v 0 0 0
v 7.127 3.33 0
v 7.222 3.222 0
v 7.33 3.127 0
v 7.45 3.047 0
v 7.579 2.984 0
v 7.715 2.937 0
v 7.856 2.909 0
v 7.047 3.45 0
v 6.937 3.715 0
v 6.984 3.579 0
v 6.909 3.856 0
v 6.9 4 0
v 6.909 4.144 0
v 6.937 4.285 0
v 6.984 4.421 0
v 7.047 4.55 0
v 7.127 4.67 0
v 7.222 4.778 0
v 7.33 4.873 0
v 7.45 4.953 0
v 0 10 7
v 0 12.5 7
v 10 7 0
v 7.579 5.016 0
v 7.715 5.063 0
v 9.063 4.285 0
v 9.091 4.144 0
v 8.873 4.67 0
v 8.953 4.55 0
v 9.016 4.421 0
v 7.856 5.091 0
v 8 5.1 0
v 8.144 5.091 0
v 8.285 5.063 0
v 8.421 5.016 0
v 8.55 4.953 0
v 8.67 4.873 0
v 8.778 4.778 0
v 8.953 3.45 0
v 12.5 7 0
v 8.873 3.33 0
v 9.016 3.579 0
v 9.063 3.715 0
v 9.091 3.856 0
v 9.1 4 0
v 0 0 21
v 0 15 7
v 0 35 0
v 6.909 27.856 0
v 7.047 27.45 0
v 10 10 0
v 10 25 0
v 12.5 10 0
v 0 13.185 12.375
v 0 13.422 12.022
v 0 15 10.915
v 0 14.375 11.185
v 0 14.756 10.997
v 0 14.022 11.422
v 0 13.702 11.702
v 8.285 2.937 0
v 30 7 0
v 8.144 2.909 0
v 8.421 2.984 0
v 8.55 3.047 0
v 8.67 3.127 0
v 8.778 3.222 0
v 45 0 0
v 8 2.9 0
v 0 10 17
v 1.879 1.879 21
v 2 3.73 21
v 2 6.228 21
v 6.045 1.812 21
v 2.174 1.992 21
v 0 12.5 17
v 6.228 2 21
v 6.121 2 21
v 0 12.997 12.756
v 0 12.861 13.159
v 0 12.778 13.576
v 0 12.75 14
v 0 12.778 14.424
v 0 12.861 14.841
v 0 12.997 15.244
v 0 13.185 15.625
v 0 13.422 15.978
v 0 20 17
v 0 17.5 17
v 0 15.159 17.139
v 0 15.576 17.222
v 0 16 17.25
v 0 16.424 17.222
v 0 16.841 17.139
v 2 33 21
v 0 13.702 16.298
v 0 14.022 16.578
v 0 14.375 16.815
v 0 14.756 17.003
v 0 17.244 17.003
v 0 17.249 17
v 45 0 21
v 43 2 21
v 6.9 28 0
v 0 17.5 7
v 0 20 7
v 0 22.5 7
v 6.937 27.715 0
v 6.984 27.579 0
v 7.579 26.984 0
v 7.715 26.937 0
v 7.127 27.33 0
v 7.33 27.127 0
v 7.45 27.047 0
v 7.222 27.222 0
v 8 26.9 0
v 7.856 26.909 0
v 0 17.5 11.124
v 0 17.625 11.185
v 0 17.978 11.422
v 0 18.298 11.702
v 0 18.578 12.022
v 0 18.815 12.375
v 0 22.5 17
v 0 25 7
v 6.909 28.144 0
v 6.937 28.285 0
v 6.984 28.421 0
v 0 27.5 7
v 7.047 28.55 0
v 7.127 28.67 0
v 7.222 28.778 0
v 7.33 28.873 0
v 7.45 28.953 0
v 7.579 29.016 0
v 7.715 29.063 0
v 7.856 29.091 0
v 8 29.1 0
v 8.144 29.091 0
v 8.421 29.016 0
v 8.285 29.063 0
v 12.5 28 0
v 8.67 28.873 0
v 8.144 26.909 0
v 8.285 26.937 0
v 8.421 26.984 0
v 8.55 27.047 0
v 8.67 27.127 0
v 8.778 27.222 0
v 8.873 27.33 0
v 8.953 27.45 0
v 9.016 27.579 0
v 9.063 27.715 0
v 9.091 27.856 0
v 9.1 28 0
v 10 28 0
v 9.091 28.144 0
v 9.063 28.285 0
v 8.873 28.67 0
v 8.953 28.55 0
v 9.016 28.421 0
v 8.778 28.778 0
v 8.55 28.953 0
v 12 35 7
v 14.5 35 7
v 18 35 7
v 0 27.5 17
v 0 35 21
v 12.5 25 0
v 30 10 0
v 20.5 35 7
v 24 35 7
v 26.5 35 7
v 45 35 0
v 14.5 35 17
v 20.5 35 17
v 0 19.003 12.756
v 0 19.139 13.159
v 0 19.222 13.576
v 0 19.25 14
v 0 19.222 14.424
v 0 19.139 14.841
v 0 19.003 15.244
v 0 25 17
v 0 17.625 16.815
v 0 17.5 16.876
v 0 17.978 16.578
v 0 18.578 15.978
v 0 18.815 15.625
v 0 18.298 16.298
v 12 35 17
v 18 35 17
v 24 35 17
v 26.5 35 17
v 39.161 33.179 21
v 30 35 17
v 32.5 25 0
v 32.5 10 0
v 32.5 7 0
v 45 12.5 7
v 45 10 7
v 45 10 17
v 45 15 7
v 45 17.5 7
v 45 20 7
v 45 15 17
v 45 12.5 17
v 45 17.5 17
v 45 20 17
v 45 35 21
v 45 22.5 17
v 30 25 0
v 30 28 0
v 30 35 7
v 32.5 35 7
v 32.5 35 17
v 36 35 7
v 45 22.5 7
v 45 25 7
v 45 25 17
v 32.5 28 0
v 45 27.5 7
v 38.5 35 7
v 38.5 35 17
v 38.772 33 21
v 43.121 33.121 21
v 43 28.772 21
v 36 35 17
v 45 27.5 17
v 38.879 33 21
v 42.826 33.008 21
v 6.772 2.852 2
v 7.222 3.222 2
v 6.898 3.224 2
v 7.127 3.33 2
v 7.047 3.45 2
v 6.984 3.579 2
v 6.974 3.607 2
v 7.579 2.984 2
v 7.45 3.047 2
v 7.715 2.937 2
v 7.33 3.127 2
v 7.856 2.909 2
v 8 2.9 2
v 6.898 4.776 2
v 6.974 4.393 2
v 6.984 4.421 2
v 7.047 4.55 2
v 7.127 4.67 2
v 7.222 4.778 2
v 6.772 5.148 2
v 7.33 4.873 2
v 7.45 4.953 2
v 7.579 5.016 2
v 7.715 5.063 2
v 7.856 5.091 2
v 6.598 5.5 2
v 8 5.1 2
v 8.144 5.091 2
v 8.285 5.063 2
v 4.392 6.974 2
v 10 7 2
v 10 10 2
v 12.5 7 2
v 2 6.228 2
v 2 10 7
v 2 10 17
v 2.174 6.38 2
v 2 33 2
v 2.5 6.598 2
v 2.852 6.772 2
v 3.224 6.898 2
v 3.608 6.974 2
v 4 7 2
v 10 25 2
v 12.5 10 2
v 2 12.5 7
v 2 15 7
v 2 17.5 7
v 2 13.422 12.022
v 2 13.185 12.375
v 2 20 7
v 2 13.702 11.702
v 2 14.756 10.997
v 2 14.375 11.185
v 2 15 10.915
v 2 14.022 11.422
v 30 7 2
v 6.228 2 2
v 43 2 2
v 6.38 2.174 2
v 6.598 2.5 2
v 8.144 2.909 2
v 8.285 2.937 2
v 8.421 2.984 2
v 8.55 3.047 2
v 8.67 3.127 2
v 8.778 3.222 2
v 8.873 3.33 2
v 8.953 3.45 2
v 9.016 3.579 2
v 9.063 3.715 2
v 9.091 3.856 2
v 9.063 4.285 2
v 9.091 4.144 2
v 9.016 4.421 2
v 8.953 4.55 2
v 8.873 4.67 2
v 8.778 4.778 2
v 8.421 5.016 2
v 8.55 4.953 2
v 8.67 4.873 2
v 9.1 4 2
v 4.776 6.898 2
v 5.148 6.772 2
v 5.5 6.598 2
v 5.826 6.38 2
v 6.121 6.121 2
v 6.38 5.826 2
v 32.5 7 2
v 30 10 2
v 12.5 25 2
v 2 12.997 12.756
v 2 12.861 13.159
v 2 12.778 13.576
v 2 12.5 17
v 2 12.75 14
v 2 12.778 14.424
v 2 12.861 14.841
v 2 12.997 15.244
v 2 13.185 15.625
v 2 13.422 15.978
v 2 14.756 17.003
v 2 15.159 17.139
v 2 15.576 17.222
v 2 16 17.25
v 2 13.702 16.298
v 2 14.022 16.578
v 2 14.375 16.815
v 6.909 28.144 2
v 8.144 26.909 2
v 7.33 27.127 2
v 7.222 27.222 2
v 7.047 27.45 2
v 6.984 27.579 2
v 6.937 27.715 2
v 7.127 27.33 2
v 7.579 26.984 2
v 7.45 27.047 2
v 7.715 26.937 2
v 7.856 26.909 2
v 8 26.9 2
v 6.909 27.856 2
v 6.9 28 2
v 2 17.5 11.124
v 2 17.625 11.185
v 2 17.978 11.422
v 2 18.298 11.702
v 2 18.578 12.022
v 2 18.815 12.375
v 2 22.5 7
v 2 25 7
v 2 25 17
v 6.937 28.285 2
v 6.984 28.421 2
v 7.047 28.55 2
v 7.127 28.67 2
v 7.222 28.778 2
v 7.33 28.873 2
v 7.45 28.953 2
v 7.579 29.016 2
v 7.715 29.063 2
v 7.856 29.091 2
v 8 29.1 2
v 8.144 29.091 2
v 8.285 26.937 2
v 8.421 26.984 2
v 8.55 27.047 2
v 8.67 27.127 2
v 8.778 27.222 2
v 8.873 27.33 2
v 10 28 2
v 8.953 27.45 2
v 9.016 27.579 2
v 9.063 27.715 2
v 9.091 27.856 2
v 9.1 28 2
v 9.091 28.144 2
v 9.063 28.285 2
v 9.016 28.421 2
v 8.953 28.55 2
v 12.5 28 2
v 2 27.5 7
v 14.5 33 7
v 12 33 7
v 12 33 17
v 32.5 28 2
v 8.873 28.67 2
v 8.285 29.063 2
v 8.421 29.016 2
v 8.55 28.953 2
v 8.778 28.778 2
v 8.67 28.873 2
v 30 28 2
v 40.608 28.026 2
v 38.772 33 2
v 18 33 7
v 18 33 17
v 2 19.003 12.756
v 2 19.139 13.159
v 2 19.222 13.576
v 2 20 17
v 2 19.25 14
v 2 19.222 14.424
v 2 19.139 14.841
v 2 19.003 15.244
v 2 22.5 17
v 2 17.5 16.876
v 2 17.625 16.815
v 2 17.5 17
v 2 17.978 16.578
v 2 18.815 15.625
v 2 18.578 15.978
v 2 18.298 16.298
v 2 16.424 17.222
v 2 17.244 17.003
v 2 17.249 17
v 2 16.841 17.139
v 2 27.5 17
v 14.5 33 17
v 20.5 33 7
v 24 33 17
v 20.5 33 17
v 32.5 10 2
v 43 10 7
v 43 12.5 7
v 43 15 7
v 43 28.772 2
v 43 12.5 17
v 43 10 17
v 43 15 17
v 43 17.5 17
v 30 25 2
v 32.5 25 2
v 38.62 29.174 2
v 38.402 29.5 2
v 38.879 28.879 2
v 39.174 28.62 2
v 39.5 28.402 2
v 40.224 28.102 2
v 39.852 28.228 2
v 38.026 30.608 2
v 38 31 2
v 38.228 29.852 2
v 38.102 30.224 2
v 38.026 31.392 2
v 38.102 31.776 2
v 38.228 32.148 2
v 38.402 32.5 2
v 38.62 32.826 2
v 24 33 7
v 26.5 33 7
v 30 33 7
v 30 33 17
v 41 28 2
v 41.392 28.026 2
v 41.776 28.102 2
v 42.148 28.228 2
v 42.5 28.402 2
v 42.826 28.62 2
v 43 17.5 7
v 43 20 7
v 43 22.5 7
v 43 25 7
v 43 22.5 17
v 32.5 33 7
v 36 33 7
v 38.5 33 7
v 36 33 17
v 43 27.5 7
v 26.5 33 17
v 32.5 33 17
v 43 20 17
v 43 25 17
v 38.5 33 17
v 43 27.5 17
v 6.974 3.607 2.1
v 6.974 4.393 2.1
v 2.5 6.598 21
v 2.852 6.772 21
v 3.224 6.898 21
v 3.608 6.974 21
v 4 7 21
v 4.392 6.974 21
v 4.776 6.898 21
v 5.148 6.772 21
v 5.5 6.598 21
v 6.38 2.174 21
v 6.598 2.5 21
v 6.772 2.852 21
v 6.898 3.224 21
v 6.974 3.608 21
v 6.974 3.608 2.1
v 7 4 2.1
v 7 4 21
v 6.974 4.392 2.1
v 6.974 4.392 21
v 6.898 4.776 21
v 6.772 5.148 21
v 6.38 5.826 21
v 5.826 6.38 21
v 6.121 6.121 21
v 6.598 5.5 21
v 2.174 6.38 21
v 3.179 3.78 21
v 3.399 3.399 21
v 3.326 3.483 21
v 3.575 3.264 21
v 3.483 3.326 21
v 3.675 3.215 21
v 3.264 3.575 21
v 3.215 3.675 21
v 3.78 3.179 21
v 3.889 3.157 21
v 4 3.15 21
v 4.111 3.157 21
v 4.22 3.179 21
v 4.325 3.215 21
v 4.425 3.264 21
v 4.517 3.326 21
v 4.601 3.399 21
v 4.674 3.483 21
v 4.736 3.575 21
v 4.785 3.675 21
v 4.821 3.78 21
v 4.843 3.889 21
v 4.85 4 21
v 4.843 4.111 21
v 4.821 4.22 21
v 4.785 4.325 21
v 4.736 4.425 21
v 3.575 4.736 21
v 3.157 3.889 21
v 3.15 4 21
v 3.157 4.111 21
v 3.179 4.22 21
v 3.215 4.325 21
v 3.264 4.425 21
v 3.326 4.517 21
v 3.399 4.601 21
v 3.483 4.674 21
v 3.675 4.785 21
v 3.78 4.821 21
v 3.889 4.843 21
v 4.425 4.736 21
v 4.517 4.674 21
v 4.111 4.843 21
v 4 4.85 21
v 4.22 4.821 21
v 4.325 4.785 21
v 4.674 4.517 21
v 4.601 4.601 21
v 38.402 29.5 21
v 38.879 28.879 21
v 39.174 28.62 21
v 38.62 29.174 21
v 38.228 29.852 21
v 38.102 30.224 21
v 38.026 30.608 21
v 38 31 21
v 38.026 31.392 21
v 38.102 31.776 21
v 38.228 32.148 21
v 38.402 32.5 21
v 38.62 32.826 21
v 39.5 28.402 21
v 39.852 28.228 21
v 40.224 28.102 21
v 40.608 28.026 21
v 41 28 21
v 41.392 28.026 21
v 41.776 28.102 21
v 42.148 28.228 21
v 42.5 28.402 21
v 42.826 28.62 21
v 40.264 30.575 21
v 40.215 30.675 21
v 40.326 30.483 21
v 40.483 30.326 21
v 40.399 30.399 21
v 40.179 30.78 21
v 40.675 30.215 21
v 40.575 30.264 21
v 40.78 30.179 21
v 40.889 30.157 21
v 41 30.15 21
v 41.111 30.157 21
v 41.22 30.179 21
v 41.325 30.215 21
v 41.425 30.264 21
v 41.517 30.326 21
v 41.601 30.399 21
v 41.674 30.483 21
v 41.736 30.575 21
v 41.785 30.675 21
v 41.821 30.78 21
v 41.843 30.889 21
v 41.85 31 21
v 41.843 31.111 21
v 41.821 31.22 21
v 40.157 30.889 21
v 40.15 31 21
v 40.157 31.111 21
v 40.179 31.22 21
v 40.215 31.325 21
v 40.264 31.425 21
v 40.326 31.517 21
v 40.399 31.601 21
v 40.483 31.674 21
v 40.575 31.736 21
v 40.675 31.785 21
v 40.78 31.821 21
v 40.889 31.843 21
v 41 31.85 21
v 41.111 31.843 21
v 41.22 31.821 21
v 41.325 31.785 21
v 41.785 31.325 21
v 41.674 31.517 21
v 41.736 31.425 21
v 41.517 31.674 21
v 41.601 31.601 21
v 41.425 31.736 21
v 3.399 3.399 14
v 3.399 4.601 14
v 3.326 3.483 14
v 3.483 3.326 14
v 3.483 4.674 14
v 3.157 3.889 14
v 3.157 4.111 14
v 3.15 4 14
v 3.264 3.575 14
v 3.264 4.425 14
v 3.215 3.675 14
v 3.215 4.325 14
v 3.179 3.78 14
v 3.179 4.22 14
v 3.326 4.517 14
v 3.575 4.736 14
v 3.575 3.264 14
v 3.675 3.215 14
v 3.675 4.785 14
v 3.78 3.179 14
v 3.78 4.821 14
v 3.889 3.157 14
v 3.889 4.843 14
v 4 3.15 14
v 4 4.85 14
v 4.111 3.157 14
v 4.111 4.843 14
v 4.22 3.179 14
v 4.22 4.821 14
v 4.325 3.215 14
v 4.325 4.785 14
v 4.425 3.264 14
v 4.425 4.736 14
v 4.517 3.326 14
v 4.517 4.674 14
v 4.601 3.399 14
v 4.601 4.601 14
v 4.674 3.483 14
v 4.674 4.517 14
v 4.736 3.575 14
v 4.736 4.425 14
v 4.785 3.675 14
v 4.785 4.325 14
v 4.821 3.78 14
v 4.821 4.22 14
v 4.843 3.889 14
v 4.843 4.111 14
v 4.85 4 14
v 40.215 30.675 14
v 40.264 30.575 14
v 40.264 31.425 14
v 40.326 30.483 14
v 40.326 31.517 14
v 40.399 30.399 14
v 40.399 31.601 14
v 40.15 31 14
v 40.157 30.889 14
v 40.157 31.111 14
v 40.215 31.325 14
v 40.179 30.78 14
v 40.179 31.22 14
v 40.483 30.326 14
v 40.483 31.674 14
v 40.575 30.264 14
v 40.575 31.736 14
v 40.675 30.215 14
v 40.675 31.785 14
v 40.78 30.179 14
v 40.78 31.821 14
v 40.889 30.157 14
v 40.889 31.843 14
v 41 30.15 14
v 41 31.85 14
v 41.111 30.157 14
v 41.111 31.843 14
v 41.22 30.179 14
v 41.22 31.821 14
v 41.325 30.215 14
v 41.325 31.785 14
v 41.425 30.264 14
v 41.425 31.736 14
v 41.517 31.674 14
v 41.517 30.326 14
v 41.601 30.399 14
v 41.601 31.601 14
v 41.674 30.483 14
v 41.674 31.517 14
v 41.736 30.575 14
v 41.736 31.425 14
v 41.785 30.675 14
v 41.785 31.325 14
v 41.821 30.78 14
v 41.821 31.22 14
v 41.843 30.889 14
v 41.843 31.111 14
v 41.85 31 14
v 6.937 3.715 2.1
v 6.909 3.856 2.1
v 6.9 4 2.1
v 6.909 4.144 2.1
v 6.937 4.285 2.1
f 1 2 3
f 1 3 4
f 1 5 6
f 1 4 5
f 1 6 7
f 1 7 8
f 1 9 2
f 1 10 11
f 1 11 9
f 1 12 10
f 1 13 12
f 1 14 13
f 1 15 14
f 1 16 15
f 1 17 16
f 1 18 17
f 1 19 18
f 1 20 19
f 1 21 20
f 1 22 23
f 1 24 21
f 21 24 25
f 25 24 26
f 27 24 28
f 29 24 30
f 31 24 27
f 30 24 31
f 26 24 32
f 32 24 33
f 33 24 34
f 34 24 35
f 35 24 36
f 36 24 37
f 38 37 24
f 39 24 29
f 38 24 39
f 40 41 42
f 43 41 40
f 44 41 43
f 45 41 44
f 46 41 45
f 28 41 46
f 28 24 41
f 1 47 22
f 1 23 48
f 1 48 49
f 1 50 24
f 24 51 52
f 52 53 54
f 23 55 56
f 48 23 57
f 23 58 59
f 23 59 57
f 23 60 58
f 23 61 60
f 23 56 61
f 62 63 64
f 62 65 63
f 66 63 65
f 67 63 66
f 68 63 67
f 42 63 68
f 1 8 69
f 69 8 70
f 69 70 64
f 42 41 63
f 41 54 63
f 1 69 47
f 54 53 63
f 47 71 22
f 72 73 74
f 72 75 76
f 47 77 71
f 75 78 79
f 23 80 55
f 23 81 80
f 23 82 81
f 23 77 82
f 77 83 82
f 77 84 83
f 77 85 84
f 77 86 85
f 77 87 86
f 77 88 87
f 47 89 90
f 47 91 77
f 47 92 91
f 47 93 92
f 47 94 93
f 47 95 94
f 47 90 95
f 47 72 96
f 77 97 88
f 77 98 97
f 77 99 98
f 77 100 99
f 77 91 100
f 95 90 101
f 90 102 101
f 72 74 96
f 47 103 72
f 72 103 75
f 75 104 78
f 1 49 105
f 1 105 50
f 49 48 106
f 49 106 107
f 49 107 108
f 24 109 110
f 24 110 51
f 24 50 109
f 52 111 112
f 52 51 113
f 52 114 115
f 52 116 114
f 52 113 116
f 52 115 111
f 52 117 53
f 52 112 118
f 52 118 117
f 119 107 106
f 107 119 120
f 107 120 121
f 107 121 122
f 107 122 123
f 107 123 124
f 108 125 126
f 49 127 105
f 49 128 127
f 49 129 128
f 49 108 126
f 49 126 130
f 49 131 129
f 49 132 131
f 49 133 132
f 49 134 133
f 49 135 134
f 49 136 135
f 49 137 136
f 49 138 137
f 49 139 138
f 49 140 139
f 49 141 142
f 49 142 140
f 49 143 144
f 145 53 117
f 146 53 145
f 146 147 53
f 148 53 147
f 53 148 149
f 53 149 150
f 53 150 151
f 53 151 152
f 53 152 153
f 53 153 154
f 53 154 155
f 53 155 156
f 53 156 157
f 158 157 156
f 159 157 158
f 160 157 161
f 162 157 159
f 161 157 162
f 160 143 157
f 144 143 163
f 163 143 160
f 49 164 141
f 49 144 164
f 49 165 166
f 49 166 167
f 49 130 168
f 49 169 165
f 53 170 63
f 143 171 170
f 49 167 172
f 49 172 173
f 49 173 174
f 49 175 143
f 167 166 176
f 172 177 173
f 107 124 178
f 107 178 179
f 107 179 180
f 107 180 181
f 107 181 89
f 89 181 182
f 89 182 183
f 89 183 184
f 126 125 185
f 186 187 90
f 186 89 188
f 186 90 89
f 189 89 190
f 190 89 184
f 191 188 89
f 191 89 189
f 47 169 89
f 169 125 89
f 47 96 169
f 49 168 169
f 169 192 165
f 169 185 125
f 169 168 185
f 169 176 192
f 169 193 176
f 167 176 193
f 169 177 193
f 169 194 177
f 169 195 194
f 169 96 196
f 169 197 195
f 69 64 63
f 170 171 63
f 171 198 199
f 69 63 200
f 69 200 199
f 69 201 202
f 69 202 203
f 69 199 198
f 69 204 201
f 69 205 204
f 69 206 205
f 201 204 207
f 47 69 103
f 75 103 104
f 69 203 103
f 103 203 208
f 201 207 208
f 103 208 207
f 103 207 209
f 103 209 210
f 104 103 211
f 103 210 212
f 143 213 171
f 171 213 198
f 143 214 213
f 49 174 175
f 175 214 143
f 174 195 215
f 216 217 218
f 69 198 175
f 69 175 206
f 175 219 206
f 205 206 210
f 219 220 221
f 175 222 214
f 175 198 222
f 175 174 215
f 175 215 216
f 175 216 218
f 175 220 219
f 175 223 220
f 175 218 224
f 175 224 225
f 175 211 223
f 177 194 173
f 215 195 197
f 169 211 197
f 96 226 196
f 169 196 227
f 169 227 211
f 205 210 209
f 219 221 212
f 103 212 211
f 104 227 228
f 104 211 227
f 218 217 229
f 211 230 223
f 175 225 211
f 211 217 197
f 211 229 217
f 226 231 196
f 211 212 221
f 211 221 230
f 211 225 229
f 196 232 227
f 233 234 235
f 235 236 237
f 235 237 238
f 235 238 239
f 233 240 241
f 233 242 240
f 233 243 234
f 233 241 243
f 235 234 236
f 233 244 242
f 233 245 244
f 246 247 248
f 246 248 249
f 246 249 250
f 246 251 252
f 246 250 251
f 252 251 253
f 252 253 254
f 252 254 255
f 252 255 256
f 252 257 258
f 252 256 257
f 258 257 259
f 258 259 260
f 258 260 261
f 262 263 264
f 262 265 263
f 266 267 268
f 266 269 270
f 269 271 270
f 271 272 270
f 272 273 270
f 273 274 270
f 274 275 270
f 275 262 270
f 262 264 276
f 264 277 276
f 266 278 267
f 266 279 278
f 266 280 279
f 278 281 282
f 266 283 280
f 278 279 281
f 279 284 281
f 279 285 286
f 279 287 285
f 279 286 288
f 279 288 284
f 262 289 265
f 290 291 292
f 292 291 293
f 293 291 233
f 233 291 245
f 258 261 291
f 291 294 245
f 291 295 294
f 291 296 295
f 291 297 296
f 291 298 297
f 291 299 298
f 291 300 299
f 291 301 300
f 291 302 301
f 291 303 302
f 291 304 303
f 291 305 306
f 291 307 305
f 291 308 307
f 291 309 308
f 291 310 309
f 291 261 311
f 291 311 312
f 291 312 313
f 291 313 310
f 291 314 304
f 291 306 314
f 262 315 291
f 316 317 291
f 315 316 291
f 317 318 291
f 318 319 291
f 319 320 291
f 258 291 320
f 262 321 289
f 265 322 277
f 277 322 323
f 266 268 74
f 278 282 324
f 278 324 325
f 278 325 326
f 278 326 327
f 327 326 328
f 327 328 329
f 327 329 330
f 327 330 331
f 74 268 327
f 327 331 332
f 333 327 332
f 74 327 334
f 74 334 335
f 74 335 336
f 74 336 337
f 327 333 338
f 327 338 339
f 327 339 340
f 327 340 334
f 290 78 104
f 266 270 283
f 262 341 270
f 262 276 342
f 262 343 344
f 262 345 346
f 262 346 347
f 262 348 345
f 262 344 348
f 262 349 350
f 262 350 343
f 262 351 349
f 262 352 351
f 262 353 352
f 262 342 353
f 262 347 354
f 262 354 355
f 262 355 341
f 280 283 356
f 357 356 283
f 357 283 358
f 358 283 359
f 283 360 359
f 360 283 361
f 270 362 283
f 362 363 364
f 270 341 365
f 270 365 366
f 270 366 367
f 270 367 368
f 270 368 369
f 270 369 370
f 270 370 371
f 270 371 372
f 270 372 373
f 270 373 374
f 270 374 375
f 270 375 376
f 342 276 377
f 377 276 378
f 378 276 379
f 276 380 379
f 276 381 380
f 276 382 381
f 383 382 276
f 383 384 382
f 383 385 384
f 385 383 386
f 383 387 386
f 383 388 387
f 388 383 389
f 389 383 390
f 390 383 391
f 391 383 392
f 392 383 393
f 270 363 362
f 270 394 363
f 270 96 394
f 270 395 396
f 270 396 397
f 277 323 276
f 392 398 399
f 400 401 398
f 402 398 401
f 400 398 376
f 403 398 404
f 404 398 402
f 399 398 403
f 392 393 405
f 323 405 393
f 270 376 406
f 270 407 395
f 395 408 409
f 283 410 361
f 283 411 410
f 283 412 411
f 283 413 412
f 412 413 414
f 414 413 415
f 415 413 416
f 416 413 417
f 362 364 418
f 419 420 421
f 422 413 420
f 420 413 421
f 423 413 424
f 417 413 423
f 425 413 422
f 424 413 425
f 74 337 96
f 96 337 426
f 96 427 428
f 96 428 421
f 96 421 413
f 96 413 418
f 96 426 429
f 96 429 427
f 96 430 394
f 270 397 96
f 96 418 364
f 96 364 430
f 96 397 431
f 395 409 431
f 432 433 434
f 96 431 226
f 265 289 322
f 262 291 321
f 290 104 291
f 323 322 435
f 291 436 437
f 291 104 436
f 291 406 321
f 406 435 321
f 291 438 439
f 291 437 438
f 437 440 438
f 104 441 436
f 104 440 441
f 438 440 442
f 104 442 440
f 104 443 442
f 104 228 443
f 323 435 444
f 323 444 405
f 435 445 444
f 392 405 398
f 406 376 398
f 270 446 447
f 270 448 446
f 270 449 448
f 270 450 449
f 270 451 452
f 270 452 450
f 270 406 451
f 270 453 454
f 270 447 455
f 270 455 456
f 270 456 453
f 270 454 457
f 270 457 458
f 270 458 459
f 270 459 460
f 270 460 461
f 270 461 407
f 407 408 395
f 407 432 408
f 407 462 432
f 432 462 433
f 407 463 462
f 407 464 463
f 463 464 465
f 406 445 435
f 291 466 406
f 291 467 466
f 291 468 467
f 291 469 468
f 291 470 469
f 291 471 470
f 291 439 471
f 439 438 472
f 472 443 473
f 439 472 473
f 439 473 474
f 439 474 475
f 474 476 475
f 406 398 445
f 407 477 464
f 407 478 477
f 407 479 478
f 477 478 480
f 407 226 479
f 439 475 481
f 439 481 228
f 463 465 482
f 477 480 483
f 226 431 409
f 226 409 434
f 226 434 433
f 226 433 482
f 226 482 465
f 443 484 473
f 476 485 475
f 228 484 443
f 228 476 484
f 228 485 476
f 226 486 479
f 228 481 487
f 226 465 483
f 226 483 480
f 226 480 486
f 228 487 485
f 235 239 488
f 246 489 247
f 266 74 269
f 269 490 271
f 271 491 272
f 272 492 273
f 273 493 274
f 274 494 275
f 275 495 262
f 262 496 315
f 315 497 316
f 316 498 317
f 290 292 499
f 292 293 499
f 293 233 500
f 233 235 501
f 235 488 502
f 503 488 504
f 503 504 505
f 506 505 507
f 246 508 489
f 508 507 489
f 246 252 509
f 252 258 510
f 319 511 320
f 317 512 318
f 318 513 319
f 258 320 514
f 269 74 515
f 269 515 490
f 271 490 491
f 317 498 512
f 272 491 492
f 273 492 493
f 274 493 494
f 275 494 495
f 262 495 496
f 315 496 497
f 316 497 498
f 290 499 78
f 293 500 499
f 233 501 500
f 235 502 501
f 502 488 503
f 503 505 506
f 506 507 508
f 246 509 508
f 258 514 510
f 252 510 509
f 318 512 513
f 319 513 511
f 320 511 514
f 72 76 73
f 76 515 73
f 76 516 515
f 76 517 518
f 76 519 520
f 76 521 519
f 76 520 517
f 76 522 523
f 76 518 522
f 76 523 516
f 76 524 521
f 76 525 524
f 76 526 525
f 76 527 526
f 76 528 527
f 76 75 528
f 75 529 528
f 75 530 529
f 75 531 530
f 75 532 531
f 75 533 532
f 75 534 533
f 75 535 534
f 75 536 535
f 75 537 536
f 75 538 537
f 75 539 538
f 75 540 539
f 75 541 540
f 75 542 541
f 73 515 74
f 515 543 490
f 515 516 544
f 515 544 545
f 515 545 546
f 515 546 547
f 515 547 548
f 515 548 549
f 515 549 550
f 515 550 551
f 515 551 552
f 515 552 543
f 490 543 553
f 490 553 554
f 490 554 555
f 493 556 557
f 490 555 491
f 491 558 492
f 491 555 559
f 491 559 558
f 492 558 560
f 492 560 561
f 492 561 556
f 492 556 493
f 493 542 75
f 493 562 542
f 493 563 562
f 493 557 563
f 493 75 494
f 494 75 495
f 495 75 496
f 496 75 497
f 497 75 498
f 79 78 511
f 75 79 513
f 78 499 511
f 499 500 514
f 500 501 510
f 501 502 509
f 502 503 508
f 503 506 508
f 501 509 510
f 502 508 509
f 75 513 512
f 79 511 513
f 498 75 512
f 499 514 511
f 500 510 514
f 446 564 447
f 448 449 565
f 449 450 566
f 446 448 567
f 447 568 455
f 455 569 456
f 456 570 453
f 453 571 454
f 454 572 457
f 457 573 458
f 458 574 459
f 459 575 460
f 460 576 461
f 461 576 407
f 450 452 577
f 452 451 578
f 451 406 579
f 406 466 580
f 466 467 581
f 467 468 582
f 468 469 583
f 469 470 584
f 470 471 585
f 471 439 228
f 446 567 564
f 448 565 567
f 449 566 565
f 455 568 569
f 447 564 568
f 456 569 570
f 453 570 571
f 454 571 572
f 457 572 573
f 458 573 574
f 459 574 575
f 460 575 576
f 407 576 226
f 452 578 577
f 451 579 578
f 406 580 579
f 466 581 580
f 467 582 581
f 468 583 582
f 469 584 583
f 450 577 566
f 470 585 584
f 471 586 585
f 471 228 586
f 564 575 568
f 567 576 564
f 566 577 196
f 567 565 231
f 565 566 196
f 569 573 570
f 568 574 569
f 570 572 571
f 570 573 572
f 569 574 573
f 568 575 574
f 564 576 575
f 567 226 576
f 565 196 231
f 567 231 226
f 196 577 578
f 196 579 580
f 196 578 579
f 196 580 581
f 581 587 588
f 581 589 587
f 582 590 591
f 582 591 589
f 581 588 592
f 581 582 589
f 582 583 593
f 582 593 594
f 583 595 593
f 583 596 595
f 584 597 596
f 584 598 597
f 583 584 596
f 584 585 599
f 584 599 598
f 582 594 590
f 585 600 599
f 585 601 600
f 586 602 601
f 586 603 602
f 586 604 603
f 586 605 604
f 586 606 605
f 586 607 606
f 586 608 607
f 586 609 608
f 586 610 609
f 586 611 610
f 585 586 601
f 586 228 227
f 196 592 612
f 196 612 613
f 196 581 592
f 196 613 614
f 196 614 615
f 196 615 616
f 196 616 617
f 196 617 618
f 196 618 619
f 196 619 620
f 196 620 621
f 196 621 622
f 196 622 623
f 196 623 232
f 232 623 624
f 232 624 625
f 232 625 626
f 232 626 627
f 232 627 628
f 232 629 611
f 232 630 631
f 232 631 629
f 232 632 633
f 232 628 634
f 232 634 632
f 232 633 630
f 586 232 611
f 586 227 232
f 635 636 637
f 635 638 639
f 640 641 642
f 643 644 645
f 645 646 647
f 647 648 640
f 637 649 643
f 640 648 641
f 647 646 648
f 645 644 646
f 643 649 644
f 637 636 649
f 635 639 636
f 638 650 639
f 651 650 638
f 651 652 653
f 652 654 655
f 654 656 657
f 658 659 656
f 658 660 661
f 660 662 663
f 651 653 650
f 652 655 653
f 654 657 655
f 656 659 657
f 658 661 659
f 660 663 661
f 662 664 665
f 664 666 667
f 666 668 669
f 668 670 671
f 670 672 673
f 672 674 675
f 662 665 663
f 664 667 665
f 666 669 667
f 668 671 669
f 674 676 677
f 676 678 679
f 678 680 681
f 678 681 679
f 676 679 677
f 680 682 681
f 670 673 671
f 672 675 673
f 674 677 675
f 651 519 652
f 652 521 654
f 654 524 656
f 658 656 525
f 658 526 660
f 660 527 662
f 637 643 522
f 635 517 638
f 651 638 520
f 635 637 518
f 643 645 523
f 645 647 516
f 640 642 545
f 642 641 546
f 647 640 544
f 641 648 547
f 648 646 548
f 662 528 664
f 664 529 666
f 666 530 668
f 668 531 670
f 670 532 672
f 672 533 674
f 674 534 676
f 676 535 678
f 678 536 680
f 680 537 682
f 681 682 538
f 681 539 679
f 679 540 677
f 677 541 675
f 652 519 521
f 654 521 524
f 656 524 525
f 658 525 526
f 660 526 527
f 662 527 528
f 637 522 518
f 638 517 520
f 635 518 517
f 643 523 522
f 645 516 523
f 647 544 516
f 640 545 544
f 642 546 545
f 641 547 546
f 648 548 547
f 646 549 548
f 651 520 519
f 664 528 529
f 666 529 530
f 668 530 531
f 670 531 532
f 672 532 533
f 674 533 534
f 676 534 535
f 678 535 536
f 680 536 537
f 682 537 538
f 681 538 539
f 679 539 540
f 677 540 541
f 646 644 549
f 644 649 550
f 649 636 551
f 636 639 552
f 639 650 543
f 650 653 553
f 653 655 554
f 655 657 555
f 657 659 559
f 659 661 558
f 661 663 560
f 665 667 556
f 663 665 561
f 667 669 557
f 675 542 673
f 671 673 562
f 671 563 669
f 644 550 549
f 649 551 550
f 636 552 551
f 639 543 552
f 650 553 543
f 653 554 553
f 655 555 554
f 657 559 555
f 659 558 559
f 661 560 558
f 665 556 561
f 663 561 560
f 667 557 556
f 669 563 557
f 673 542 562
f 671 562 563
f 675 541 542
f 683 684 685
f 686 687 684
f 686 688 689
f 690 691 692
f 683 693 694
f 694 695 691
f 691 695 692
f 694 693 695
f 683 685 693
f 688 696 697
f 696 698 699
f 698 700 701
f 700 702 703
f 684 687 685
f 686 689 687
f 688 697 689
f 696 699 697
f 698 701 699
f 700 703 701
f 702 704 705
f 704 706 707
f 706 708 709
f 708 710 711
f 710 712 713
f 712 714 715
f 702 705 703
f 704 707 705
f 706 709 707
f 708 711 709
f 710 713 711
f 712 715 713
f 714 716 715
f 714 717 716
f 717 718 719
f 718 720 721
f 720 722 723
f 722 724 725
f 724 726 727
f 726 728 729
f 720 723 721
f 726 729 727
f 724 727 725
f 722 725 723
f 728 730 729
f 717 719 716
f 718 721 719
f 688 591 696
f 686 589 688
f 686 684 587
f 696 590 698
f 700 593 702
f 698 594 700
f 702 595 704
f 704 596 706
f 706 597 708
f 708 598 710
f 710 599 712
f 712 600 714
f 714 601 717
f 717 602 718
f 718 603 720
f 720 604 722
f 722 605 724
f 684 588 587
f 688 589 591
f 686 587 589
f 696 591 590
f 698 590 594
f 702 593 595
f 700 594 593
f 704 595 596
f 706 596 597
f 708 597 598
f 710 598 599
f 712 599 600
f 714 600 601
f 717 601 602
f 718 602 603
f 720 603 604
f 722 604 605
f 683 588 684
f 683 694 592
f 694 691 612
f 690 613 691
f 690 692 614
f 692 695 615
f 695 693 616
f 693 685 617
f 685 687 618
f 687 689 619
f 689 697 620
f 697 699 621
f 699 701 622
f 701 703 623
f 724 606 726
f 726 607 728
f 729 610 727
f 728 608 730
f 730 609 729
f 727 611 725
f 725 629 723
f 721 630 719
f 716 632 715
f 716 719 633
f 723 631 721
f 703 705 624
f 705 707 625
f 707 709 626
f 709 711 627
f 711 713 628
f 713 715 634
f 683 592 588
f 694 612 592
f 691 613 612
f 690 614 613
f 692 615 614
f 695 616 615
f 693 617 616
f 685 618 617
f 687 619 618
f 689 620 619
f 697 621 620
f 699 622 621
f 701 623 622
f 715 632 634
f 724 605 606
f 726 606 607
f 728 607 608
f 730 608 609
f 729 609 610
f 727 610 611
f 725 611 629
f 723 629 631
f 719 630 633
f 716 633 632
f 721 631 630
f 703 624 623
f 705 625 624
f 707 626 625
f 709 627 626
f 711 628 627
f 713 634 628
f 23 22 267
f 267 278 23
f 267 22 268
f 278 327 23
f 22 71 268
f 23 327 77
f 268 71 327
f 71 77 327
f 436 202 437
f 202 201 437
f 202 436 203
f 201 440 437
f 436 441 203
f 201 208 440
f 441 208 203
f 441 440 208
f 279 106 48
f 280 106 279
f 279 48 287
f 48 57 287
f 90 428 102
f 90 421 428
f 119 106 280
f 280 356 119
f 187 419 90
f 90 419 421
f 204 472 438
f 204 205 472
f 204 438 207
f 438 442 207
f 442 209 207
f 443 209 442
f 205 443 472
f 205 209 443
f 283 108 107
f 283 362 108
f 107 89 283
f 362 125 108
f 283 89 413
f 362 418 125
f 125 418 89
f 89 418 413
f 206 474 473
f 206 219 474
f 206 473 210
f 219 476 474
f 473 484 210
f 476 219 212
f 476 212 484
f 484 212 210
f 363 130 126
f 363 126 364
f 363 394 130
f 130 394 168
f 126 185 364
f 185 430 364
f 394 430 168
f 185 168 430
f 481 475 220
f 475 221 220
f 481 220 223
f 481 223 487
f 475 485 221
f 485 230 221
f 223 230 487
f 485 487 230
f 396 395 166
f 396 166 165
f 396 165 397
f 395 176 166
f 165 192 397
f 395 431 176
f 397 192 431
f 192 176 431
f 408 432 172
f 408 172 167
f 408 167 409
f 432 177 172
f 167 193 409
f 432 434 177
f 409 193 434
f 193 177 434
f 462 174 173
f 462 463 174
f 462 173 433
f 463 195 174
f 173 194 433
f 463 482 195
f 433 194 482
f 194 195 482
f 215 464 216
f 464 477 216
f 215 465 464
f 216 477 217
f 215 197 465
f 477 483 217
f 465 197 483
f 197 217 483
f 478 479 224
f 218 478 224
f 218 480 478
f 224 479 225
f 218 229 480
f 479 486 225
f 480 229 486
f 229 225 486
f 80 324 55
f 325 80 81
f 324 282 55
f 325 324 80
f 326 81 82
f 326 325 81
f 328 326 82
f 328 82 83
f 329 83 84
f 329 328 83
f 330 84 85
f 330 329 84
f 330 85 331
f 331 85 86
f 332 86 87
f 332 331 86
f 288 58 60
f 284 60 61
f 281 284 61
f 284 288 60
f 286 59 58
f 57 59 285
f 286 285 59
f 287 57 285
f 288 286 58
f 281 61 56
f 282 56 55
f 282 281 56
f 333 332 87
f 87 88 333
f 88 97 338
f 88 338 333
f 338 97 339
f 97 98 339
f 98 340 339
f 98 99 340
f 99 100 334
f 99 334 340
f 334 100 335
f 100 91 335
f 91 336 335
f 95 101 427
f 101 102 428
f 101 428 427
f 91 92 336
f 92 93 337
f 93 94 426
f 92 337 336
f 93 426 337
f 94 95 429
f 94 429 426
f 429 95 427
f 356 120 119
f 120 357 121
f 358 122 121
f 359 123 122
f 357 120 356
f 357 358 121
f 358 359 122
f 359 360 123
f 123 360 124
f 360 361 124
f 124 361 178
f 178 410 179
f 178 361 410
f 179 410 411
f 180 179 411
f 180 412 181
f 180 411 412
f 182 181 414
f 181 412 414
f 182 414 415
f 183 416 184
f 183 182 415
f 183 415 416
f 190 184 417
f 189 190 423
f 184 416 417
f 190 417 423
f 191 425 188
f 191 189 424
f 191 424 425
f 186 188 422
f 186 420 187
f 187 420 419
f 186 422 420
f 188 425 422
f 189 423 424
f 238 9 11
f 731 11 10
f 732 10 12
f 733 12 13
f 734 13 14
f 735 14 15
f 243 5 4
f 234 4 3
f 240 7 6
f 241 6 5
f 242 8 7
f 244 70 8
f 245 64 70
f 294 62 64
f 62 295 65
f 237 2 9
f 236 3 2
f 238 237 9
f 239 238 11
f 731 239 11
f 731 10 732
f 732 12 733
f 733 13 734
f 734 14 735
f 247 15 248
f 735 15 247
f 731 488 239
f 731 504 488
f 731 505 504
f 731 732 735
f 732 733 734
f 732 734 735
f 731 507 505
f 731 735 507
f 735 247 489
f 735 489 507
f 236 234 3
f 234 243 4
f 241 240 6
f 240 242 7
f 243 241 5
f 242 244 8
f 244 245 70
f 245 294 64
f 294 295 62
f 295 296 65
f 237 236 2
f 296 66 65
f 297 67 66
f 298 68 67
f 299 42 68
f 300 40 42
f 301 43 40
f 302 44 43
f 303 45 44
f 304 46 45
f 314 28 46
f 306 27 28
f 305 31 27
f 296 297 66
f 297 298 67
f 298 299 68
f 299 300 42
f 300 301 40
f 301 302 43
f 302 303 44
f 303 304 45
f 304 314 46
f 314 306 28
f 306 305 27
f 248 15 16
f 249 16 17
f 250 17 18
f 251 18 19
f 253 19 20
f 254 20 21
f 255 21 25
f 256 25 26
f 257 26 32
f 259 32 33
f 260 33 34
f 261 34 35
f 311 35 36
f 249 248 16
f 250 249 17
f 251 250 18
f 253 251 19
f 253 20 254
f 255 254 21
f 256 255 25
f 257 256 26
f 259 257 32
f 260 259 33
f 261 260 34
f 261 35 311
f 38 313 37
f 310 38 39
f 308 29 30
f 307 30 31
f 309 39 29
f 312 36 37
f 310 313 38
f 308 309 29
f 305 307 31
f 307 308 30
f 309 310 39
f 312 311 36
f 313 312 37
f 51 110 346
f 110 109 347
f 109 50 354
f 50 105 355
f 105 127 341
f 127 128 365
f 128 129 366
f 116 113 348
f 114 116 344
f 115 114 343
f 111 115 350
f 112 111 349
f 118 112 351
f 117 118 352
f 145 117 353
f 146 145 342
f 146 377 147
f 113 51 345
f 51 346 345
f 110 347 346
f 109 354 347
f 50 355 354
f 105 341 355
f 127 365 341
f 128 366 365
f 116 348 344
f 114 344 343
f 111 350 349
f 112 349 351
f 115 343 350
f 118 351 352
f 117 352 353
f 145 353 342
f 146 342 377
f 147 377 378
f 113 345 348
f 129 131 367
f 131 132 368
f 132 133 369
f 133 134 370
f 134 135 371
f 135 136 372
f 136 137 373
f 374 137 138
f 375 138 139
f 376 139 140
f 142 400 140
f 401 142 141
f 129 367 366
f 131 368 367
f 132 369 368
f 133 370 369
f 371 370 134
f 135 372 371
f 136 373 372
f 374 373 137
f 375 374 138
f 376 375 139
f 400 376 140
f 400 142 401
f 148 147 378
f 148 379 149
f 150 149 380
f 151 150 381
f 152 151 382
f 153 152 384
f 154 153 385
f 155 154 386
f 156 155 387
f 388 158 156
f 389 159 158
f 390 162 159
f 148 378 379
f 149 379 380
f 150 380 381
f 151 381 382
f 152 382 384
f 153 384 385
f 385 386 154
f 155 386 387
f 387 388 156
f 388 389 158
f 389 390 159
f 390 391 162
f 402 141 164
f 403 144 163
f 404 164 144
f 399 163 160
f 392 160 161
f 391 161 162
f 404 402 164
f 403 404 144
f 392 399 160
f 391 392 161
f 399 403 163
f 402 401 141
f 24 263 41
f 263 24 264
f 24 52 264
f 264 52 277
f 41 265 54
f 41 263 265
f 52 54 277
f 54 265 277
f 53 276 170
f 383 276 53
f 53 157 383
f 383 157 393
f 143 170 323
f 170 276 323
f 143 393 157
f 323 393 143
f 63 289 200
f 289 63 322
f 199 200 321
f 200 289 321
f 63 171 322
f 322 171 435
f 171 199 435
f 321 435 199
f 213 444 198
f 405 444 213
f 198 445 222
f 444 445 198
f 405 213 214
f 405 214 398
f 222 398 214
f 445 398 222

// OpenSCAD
// Generated FH1 print part; mm. See parameters.json and physical-fit limits.
difference() {
difference() {
difference() {
difference() {
difference() {
difference() {
difference() {
difference() {
difference() {
difference() {
difference() {
difference() {
difference() {
difference() {
difference() {
difference() {
difference() {
difference() {
difference() {
difference() {
difference() {
union() {
difference() {
cube([45,35,21]);
translate([2, 2, 2]) { cube([41,31,23]); }
}
translate([4, 4, 0]) { cylinder(d=6,h=21,$fn=48); }
translate([41, 31, 0]) { cylinder(d=6,h=21,$fn=48); }
}
translate([4, 4, 14]) { cylinder(d=1.7,h=8,$fn=48); }
translate([41, 31, 14]) { cylinder(d=1.7,h=8,$fn=48); }
}
translate([-0.1, 10, 7]) { cube([2.2,2.5,10]); }
}
translate([42.9, 10, 7]) { cube([2.2,2.5,10]); }
}
translate([-0.1, 15, 7]) { cube([2.2,2.5,10]); }
}
translate([42.9, 15, 7]) { cube([2.2,2.5,10]); }
}
translate([-0.1, 20, 7]) { cube([2.2,2.5,10]); }
}
translate([42.9, 20, 7]) { cube([2.2,2.5,10]); }
}
translate([-0.1, 25, 7]) { cube([2.2,2.5,10]); }
}
translate([42.9, 25, 7]) { cube([2.2,2.5,10]); }
}
translate([12, 32.9, 7]) { cube([2.5,2.2,10]); }
}
translate([18, 32.9, 7]) { cube([2.5,2.2,10]); }
}
translate([24, 32.9, 7]) { cube([2.5,2.2,10]); }
}
translate([30, 32.9, 7]) { cube([2.5,2.2,10]); }
}
translate([36, 32.9, 7]) { cube([2.5,2.2,10]); }
}
translate([-0.1, 16, 14]) { rotate([0, 90, 0]) { cylinder(d=6.5,h=2.2,$fn=48); } }
}
translate([8, 4, -0.1]) { cylinder(d=2.2,h=2.2,$fn=48); }
}
translate([8, 28, -0.1]) { cylinder(d=2.2,h=2.2,$fn=48); }
}
translate([10, 7, -0.1]) { cube([2.5,3,2.2]); }
}
translate([10, 25, -0.1]) { cube([2.5,3,2.2]); }
}
translate([30, 7, -0.1]) { cube([2.5,3,2.2]); }
}
translate([30, 25, -0.1]) { cube([2.5,3,2.2]); }
}
